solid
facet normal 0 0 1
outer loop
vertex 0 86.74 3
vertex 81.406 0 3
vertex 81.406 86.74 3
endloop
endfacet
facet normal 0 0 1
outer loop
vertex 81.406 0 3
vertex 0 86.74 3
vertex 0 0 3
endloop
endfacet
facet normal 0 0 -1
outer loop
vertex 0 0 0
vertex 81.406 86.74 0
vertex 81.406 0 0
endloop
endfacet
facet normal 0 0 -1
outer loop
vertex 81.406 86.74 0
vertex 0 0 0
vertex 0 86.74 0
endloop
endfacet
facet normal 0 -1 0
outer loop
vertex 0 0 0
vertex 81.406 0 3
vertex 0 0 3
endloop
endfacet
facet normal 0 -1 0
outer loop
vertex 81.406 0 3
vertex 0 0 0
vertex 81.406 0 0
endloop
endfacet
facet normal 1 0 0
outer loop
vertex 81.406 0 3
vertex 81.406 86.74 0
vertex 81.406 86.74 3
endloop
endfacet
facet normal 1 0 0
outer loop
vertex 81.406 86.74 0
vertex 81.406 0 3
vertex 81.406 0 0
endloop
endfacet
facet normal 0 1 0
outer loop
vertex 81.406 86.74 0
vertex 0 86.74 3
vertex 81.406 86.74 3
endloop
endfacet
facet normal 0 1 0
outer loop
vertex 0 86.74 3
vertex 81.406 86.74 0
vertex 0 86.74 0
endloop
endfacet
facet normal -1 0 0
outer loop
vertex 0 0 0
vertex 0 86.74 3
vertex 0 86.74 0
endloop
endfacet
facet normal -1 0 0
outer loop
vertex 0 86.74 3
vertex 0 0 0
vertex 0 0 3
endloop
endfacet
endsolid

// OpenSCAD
// Units: mm. PCB stand worked example.
cube([81.406, 86.740, 3]);
